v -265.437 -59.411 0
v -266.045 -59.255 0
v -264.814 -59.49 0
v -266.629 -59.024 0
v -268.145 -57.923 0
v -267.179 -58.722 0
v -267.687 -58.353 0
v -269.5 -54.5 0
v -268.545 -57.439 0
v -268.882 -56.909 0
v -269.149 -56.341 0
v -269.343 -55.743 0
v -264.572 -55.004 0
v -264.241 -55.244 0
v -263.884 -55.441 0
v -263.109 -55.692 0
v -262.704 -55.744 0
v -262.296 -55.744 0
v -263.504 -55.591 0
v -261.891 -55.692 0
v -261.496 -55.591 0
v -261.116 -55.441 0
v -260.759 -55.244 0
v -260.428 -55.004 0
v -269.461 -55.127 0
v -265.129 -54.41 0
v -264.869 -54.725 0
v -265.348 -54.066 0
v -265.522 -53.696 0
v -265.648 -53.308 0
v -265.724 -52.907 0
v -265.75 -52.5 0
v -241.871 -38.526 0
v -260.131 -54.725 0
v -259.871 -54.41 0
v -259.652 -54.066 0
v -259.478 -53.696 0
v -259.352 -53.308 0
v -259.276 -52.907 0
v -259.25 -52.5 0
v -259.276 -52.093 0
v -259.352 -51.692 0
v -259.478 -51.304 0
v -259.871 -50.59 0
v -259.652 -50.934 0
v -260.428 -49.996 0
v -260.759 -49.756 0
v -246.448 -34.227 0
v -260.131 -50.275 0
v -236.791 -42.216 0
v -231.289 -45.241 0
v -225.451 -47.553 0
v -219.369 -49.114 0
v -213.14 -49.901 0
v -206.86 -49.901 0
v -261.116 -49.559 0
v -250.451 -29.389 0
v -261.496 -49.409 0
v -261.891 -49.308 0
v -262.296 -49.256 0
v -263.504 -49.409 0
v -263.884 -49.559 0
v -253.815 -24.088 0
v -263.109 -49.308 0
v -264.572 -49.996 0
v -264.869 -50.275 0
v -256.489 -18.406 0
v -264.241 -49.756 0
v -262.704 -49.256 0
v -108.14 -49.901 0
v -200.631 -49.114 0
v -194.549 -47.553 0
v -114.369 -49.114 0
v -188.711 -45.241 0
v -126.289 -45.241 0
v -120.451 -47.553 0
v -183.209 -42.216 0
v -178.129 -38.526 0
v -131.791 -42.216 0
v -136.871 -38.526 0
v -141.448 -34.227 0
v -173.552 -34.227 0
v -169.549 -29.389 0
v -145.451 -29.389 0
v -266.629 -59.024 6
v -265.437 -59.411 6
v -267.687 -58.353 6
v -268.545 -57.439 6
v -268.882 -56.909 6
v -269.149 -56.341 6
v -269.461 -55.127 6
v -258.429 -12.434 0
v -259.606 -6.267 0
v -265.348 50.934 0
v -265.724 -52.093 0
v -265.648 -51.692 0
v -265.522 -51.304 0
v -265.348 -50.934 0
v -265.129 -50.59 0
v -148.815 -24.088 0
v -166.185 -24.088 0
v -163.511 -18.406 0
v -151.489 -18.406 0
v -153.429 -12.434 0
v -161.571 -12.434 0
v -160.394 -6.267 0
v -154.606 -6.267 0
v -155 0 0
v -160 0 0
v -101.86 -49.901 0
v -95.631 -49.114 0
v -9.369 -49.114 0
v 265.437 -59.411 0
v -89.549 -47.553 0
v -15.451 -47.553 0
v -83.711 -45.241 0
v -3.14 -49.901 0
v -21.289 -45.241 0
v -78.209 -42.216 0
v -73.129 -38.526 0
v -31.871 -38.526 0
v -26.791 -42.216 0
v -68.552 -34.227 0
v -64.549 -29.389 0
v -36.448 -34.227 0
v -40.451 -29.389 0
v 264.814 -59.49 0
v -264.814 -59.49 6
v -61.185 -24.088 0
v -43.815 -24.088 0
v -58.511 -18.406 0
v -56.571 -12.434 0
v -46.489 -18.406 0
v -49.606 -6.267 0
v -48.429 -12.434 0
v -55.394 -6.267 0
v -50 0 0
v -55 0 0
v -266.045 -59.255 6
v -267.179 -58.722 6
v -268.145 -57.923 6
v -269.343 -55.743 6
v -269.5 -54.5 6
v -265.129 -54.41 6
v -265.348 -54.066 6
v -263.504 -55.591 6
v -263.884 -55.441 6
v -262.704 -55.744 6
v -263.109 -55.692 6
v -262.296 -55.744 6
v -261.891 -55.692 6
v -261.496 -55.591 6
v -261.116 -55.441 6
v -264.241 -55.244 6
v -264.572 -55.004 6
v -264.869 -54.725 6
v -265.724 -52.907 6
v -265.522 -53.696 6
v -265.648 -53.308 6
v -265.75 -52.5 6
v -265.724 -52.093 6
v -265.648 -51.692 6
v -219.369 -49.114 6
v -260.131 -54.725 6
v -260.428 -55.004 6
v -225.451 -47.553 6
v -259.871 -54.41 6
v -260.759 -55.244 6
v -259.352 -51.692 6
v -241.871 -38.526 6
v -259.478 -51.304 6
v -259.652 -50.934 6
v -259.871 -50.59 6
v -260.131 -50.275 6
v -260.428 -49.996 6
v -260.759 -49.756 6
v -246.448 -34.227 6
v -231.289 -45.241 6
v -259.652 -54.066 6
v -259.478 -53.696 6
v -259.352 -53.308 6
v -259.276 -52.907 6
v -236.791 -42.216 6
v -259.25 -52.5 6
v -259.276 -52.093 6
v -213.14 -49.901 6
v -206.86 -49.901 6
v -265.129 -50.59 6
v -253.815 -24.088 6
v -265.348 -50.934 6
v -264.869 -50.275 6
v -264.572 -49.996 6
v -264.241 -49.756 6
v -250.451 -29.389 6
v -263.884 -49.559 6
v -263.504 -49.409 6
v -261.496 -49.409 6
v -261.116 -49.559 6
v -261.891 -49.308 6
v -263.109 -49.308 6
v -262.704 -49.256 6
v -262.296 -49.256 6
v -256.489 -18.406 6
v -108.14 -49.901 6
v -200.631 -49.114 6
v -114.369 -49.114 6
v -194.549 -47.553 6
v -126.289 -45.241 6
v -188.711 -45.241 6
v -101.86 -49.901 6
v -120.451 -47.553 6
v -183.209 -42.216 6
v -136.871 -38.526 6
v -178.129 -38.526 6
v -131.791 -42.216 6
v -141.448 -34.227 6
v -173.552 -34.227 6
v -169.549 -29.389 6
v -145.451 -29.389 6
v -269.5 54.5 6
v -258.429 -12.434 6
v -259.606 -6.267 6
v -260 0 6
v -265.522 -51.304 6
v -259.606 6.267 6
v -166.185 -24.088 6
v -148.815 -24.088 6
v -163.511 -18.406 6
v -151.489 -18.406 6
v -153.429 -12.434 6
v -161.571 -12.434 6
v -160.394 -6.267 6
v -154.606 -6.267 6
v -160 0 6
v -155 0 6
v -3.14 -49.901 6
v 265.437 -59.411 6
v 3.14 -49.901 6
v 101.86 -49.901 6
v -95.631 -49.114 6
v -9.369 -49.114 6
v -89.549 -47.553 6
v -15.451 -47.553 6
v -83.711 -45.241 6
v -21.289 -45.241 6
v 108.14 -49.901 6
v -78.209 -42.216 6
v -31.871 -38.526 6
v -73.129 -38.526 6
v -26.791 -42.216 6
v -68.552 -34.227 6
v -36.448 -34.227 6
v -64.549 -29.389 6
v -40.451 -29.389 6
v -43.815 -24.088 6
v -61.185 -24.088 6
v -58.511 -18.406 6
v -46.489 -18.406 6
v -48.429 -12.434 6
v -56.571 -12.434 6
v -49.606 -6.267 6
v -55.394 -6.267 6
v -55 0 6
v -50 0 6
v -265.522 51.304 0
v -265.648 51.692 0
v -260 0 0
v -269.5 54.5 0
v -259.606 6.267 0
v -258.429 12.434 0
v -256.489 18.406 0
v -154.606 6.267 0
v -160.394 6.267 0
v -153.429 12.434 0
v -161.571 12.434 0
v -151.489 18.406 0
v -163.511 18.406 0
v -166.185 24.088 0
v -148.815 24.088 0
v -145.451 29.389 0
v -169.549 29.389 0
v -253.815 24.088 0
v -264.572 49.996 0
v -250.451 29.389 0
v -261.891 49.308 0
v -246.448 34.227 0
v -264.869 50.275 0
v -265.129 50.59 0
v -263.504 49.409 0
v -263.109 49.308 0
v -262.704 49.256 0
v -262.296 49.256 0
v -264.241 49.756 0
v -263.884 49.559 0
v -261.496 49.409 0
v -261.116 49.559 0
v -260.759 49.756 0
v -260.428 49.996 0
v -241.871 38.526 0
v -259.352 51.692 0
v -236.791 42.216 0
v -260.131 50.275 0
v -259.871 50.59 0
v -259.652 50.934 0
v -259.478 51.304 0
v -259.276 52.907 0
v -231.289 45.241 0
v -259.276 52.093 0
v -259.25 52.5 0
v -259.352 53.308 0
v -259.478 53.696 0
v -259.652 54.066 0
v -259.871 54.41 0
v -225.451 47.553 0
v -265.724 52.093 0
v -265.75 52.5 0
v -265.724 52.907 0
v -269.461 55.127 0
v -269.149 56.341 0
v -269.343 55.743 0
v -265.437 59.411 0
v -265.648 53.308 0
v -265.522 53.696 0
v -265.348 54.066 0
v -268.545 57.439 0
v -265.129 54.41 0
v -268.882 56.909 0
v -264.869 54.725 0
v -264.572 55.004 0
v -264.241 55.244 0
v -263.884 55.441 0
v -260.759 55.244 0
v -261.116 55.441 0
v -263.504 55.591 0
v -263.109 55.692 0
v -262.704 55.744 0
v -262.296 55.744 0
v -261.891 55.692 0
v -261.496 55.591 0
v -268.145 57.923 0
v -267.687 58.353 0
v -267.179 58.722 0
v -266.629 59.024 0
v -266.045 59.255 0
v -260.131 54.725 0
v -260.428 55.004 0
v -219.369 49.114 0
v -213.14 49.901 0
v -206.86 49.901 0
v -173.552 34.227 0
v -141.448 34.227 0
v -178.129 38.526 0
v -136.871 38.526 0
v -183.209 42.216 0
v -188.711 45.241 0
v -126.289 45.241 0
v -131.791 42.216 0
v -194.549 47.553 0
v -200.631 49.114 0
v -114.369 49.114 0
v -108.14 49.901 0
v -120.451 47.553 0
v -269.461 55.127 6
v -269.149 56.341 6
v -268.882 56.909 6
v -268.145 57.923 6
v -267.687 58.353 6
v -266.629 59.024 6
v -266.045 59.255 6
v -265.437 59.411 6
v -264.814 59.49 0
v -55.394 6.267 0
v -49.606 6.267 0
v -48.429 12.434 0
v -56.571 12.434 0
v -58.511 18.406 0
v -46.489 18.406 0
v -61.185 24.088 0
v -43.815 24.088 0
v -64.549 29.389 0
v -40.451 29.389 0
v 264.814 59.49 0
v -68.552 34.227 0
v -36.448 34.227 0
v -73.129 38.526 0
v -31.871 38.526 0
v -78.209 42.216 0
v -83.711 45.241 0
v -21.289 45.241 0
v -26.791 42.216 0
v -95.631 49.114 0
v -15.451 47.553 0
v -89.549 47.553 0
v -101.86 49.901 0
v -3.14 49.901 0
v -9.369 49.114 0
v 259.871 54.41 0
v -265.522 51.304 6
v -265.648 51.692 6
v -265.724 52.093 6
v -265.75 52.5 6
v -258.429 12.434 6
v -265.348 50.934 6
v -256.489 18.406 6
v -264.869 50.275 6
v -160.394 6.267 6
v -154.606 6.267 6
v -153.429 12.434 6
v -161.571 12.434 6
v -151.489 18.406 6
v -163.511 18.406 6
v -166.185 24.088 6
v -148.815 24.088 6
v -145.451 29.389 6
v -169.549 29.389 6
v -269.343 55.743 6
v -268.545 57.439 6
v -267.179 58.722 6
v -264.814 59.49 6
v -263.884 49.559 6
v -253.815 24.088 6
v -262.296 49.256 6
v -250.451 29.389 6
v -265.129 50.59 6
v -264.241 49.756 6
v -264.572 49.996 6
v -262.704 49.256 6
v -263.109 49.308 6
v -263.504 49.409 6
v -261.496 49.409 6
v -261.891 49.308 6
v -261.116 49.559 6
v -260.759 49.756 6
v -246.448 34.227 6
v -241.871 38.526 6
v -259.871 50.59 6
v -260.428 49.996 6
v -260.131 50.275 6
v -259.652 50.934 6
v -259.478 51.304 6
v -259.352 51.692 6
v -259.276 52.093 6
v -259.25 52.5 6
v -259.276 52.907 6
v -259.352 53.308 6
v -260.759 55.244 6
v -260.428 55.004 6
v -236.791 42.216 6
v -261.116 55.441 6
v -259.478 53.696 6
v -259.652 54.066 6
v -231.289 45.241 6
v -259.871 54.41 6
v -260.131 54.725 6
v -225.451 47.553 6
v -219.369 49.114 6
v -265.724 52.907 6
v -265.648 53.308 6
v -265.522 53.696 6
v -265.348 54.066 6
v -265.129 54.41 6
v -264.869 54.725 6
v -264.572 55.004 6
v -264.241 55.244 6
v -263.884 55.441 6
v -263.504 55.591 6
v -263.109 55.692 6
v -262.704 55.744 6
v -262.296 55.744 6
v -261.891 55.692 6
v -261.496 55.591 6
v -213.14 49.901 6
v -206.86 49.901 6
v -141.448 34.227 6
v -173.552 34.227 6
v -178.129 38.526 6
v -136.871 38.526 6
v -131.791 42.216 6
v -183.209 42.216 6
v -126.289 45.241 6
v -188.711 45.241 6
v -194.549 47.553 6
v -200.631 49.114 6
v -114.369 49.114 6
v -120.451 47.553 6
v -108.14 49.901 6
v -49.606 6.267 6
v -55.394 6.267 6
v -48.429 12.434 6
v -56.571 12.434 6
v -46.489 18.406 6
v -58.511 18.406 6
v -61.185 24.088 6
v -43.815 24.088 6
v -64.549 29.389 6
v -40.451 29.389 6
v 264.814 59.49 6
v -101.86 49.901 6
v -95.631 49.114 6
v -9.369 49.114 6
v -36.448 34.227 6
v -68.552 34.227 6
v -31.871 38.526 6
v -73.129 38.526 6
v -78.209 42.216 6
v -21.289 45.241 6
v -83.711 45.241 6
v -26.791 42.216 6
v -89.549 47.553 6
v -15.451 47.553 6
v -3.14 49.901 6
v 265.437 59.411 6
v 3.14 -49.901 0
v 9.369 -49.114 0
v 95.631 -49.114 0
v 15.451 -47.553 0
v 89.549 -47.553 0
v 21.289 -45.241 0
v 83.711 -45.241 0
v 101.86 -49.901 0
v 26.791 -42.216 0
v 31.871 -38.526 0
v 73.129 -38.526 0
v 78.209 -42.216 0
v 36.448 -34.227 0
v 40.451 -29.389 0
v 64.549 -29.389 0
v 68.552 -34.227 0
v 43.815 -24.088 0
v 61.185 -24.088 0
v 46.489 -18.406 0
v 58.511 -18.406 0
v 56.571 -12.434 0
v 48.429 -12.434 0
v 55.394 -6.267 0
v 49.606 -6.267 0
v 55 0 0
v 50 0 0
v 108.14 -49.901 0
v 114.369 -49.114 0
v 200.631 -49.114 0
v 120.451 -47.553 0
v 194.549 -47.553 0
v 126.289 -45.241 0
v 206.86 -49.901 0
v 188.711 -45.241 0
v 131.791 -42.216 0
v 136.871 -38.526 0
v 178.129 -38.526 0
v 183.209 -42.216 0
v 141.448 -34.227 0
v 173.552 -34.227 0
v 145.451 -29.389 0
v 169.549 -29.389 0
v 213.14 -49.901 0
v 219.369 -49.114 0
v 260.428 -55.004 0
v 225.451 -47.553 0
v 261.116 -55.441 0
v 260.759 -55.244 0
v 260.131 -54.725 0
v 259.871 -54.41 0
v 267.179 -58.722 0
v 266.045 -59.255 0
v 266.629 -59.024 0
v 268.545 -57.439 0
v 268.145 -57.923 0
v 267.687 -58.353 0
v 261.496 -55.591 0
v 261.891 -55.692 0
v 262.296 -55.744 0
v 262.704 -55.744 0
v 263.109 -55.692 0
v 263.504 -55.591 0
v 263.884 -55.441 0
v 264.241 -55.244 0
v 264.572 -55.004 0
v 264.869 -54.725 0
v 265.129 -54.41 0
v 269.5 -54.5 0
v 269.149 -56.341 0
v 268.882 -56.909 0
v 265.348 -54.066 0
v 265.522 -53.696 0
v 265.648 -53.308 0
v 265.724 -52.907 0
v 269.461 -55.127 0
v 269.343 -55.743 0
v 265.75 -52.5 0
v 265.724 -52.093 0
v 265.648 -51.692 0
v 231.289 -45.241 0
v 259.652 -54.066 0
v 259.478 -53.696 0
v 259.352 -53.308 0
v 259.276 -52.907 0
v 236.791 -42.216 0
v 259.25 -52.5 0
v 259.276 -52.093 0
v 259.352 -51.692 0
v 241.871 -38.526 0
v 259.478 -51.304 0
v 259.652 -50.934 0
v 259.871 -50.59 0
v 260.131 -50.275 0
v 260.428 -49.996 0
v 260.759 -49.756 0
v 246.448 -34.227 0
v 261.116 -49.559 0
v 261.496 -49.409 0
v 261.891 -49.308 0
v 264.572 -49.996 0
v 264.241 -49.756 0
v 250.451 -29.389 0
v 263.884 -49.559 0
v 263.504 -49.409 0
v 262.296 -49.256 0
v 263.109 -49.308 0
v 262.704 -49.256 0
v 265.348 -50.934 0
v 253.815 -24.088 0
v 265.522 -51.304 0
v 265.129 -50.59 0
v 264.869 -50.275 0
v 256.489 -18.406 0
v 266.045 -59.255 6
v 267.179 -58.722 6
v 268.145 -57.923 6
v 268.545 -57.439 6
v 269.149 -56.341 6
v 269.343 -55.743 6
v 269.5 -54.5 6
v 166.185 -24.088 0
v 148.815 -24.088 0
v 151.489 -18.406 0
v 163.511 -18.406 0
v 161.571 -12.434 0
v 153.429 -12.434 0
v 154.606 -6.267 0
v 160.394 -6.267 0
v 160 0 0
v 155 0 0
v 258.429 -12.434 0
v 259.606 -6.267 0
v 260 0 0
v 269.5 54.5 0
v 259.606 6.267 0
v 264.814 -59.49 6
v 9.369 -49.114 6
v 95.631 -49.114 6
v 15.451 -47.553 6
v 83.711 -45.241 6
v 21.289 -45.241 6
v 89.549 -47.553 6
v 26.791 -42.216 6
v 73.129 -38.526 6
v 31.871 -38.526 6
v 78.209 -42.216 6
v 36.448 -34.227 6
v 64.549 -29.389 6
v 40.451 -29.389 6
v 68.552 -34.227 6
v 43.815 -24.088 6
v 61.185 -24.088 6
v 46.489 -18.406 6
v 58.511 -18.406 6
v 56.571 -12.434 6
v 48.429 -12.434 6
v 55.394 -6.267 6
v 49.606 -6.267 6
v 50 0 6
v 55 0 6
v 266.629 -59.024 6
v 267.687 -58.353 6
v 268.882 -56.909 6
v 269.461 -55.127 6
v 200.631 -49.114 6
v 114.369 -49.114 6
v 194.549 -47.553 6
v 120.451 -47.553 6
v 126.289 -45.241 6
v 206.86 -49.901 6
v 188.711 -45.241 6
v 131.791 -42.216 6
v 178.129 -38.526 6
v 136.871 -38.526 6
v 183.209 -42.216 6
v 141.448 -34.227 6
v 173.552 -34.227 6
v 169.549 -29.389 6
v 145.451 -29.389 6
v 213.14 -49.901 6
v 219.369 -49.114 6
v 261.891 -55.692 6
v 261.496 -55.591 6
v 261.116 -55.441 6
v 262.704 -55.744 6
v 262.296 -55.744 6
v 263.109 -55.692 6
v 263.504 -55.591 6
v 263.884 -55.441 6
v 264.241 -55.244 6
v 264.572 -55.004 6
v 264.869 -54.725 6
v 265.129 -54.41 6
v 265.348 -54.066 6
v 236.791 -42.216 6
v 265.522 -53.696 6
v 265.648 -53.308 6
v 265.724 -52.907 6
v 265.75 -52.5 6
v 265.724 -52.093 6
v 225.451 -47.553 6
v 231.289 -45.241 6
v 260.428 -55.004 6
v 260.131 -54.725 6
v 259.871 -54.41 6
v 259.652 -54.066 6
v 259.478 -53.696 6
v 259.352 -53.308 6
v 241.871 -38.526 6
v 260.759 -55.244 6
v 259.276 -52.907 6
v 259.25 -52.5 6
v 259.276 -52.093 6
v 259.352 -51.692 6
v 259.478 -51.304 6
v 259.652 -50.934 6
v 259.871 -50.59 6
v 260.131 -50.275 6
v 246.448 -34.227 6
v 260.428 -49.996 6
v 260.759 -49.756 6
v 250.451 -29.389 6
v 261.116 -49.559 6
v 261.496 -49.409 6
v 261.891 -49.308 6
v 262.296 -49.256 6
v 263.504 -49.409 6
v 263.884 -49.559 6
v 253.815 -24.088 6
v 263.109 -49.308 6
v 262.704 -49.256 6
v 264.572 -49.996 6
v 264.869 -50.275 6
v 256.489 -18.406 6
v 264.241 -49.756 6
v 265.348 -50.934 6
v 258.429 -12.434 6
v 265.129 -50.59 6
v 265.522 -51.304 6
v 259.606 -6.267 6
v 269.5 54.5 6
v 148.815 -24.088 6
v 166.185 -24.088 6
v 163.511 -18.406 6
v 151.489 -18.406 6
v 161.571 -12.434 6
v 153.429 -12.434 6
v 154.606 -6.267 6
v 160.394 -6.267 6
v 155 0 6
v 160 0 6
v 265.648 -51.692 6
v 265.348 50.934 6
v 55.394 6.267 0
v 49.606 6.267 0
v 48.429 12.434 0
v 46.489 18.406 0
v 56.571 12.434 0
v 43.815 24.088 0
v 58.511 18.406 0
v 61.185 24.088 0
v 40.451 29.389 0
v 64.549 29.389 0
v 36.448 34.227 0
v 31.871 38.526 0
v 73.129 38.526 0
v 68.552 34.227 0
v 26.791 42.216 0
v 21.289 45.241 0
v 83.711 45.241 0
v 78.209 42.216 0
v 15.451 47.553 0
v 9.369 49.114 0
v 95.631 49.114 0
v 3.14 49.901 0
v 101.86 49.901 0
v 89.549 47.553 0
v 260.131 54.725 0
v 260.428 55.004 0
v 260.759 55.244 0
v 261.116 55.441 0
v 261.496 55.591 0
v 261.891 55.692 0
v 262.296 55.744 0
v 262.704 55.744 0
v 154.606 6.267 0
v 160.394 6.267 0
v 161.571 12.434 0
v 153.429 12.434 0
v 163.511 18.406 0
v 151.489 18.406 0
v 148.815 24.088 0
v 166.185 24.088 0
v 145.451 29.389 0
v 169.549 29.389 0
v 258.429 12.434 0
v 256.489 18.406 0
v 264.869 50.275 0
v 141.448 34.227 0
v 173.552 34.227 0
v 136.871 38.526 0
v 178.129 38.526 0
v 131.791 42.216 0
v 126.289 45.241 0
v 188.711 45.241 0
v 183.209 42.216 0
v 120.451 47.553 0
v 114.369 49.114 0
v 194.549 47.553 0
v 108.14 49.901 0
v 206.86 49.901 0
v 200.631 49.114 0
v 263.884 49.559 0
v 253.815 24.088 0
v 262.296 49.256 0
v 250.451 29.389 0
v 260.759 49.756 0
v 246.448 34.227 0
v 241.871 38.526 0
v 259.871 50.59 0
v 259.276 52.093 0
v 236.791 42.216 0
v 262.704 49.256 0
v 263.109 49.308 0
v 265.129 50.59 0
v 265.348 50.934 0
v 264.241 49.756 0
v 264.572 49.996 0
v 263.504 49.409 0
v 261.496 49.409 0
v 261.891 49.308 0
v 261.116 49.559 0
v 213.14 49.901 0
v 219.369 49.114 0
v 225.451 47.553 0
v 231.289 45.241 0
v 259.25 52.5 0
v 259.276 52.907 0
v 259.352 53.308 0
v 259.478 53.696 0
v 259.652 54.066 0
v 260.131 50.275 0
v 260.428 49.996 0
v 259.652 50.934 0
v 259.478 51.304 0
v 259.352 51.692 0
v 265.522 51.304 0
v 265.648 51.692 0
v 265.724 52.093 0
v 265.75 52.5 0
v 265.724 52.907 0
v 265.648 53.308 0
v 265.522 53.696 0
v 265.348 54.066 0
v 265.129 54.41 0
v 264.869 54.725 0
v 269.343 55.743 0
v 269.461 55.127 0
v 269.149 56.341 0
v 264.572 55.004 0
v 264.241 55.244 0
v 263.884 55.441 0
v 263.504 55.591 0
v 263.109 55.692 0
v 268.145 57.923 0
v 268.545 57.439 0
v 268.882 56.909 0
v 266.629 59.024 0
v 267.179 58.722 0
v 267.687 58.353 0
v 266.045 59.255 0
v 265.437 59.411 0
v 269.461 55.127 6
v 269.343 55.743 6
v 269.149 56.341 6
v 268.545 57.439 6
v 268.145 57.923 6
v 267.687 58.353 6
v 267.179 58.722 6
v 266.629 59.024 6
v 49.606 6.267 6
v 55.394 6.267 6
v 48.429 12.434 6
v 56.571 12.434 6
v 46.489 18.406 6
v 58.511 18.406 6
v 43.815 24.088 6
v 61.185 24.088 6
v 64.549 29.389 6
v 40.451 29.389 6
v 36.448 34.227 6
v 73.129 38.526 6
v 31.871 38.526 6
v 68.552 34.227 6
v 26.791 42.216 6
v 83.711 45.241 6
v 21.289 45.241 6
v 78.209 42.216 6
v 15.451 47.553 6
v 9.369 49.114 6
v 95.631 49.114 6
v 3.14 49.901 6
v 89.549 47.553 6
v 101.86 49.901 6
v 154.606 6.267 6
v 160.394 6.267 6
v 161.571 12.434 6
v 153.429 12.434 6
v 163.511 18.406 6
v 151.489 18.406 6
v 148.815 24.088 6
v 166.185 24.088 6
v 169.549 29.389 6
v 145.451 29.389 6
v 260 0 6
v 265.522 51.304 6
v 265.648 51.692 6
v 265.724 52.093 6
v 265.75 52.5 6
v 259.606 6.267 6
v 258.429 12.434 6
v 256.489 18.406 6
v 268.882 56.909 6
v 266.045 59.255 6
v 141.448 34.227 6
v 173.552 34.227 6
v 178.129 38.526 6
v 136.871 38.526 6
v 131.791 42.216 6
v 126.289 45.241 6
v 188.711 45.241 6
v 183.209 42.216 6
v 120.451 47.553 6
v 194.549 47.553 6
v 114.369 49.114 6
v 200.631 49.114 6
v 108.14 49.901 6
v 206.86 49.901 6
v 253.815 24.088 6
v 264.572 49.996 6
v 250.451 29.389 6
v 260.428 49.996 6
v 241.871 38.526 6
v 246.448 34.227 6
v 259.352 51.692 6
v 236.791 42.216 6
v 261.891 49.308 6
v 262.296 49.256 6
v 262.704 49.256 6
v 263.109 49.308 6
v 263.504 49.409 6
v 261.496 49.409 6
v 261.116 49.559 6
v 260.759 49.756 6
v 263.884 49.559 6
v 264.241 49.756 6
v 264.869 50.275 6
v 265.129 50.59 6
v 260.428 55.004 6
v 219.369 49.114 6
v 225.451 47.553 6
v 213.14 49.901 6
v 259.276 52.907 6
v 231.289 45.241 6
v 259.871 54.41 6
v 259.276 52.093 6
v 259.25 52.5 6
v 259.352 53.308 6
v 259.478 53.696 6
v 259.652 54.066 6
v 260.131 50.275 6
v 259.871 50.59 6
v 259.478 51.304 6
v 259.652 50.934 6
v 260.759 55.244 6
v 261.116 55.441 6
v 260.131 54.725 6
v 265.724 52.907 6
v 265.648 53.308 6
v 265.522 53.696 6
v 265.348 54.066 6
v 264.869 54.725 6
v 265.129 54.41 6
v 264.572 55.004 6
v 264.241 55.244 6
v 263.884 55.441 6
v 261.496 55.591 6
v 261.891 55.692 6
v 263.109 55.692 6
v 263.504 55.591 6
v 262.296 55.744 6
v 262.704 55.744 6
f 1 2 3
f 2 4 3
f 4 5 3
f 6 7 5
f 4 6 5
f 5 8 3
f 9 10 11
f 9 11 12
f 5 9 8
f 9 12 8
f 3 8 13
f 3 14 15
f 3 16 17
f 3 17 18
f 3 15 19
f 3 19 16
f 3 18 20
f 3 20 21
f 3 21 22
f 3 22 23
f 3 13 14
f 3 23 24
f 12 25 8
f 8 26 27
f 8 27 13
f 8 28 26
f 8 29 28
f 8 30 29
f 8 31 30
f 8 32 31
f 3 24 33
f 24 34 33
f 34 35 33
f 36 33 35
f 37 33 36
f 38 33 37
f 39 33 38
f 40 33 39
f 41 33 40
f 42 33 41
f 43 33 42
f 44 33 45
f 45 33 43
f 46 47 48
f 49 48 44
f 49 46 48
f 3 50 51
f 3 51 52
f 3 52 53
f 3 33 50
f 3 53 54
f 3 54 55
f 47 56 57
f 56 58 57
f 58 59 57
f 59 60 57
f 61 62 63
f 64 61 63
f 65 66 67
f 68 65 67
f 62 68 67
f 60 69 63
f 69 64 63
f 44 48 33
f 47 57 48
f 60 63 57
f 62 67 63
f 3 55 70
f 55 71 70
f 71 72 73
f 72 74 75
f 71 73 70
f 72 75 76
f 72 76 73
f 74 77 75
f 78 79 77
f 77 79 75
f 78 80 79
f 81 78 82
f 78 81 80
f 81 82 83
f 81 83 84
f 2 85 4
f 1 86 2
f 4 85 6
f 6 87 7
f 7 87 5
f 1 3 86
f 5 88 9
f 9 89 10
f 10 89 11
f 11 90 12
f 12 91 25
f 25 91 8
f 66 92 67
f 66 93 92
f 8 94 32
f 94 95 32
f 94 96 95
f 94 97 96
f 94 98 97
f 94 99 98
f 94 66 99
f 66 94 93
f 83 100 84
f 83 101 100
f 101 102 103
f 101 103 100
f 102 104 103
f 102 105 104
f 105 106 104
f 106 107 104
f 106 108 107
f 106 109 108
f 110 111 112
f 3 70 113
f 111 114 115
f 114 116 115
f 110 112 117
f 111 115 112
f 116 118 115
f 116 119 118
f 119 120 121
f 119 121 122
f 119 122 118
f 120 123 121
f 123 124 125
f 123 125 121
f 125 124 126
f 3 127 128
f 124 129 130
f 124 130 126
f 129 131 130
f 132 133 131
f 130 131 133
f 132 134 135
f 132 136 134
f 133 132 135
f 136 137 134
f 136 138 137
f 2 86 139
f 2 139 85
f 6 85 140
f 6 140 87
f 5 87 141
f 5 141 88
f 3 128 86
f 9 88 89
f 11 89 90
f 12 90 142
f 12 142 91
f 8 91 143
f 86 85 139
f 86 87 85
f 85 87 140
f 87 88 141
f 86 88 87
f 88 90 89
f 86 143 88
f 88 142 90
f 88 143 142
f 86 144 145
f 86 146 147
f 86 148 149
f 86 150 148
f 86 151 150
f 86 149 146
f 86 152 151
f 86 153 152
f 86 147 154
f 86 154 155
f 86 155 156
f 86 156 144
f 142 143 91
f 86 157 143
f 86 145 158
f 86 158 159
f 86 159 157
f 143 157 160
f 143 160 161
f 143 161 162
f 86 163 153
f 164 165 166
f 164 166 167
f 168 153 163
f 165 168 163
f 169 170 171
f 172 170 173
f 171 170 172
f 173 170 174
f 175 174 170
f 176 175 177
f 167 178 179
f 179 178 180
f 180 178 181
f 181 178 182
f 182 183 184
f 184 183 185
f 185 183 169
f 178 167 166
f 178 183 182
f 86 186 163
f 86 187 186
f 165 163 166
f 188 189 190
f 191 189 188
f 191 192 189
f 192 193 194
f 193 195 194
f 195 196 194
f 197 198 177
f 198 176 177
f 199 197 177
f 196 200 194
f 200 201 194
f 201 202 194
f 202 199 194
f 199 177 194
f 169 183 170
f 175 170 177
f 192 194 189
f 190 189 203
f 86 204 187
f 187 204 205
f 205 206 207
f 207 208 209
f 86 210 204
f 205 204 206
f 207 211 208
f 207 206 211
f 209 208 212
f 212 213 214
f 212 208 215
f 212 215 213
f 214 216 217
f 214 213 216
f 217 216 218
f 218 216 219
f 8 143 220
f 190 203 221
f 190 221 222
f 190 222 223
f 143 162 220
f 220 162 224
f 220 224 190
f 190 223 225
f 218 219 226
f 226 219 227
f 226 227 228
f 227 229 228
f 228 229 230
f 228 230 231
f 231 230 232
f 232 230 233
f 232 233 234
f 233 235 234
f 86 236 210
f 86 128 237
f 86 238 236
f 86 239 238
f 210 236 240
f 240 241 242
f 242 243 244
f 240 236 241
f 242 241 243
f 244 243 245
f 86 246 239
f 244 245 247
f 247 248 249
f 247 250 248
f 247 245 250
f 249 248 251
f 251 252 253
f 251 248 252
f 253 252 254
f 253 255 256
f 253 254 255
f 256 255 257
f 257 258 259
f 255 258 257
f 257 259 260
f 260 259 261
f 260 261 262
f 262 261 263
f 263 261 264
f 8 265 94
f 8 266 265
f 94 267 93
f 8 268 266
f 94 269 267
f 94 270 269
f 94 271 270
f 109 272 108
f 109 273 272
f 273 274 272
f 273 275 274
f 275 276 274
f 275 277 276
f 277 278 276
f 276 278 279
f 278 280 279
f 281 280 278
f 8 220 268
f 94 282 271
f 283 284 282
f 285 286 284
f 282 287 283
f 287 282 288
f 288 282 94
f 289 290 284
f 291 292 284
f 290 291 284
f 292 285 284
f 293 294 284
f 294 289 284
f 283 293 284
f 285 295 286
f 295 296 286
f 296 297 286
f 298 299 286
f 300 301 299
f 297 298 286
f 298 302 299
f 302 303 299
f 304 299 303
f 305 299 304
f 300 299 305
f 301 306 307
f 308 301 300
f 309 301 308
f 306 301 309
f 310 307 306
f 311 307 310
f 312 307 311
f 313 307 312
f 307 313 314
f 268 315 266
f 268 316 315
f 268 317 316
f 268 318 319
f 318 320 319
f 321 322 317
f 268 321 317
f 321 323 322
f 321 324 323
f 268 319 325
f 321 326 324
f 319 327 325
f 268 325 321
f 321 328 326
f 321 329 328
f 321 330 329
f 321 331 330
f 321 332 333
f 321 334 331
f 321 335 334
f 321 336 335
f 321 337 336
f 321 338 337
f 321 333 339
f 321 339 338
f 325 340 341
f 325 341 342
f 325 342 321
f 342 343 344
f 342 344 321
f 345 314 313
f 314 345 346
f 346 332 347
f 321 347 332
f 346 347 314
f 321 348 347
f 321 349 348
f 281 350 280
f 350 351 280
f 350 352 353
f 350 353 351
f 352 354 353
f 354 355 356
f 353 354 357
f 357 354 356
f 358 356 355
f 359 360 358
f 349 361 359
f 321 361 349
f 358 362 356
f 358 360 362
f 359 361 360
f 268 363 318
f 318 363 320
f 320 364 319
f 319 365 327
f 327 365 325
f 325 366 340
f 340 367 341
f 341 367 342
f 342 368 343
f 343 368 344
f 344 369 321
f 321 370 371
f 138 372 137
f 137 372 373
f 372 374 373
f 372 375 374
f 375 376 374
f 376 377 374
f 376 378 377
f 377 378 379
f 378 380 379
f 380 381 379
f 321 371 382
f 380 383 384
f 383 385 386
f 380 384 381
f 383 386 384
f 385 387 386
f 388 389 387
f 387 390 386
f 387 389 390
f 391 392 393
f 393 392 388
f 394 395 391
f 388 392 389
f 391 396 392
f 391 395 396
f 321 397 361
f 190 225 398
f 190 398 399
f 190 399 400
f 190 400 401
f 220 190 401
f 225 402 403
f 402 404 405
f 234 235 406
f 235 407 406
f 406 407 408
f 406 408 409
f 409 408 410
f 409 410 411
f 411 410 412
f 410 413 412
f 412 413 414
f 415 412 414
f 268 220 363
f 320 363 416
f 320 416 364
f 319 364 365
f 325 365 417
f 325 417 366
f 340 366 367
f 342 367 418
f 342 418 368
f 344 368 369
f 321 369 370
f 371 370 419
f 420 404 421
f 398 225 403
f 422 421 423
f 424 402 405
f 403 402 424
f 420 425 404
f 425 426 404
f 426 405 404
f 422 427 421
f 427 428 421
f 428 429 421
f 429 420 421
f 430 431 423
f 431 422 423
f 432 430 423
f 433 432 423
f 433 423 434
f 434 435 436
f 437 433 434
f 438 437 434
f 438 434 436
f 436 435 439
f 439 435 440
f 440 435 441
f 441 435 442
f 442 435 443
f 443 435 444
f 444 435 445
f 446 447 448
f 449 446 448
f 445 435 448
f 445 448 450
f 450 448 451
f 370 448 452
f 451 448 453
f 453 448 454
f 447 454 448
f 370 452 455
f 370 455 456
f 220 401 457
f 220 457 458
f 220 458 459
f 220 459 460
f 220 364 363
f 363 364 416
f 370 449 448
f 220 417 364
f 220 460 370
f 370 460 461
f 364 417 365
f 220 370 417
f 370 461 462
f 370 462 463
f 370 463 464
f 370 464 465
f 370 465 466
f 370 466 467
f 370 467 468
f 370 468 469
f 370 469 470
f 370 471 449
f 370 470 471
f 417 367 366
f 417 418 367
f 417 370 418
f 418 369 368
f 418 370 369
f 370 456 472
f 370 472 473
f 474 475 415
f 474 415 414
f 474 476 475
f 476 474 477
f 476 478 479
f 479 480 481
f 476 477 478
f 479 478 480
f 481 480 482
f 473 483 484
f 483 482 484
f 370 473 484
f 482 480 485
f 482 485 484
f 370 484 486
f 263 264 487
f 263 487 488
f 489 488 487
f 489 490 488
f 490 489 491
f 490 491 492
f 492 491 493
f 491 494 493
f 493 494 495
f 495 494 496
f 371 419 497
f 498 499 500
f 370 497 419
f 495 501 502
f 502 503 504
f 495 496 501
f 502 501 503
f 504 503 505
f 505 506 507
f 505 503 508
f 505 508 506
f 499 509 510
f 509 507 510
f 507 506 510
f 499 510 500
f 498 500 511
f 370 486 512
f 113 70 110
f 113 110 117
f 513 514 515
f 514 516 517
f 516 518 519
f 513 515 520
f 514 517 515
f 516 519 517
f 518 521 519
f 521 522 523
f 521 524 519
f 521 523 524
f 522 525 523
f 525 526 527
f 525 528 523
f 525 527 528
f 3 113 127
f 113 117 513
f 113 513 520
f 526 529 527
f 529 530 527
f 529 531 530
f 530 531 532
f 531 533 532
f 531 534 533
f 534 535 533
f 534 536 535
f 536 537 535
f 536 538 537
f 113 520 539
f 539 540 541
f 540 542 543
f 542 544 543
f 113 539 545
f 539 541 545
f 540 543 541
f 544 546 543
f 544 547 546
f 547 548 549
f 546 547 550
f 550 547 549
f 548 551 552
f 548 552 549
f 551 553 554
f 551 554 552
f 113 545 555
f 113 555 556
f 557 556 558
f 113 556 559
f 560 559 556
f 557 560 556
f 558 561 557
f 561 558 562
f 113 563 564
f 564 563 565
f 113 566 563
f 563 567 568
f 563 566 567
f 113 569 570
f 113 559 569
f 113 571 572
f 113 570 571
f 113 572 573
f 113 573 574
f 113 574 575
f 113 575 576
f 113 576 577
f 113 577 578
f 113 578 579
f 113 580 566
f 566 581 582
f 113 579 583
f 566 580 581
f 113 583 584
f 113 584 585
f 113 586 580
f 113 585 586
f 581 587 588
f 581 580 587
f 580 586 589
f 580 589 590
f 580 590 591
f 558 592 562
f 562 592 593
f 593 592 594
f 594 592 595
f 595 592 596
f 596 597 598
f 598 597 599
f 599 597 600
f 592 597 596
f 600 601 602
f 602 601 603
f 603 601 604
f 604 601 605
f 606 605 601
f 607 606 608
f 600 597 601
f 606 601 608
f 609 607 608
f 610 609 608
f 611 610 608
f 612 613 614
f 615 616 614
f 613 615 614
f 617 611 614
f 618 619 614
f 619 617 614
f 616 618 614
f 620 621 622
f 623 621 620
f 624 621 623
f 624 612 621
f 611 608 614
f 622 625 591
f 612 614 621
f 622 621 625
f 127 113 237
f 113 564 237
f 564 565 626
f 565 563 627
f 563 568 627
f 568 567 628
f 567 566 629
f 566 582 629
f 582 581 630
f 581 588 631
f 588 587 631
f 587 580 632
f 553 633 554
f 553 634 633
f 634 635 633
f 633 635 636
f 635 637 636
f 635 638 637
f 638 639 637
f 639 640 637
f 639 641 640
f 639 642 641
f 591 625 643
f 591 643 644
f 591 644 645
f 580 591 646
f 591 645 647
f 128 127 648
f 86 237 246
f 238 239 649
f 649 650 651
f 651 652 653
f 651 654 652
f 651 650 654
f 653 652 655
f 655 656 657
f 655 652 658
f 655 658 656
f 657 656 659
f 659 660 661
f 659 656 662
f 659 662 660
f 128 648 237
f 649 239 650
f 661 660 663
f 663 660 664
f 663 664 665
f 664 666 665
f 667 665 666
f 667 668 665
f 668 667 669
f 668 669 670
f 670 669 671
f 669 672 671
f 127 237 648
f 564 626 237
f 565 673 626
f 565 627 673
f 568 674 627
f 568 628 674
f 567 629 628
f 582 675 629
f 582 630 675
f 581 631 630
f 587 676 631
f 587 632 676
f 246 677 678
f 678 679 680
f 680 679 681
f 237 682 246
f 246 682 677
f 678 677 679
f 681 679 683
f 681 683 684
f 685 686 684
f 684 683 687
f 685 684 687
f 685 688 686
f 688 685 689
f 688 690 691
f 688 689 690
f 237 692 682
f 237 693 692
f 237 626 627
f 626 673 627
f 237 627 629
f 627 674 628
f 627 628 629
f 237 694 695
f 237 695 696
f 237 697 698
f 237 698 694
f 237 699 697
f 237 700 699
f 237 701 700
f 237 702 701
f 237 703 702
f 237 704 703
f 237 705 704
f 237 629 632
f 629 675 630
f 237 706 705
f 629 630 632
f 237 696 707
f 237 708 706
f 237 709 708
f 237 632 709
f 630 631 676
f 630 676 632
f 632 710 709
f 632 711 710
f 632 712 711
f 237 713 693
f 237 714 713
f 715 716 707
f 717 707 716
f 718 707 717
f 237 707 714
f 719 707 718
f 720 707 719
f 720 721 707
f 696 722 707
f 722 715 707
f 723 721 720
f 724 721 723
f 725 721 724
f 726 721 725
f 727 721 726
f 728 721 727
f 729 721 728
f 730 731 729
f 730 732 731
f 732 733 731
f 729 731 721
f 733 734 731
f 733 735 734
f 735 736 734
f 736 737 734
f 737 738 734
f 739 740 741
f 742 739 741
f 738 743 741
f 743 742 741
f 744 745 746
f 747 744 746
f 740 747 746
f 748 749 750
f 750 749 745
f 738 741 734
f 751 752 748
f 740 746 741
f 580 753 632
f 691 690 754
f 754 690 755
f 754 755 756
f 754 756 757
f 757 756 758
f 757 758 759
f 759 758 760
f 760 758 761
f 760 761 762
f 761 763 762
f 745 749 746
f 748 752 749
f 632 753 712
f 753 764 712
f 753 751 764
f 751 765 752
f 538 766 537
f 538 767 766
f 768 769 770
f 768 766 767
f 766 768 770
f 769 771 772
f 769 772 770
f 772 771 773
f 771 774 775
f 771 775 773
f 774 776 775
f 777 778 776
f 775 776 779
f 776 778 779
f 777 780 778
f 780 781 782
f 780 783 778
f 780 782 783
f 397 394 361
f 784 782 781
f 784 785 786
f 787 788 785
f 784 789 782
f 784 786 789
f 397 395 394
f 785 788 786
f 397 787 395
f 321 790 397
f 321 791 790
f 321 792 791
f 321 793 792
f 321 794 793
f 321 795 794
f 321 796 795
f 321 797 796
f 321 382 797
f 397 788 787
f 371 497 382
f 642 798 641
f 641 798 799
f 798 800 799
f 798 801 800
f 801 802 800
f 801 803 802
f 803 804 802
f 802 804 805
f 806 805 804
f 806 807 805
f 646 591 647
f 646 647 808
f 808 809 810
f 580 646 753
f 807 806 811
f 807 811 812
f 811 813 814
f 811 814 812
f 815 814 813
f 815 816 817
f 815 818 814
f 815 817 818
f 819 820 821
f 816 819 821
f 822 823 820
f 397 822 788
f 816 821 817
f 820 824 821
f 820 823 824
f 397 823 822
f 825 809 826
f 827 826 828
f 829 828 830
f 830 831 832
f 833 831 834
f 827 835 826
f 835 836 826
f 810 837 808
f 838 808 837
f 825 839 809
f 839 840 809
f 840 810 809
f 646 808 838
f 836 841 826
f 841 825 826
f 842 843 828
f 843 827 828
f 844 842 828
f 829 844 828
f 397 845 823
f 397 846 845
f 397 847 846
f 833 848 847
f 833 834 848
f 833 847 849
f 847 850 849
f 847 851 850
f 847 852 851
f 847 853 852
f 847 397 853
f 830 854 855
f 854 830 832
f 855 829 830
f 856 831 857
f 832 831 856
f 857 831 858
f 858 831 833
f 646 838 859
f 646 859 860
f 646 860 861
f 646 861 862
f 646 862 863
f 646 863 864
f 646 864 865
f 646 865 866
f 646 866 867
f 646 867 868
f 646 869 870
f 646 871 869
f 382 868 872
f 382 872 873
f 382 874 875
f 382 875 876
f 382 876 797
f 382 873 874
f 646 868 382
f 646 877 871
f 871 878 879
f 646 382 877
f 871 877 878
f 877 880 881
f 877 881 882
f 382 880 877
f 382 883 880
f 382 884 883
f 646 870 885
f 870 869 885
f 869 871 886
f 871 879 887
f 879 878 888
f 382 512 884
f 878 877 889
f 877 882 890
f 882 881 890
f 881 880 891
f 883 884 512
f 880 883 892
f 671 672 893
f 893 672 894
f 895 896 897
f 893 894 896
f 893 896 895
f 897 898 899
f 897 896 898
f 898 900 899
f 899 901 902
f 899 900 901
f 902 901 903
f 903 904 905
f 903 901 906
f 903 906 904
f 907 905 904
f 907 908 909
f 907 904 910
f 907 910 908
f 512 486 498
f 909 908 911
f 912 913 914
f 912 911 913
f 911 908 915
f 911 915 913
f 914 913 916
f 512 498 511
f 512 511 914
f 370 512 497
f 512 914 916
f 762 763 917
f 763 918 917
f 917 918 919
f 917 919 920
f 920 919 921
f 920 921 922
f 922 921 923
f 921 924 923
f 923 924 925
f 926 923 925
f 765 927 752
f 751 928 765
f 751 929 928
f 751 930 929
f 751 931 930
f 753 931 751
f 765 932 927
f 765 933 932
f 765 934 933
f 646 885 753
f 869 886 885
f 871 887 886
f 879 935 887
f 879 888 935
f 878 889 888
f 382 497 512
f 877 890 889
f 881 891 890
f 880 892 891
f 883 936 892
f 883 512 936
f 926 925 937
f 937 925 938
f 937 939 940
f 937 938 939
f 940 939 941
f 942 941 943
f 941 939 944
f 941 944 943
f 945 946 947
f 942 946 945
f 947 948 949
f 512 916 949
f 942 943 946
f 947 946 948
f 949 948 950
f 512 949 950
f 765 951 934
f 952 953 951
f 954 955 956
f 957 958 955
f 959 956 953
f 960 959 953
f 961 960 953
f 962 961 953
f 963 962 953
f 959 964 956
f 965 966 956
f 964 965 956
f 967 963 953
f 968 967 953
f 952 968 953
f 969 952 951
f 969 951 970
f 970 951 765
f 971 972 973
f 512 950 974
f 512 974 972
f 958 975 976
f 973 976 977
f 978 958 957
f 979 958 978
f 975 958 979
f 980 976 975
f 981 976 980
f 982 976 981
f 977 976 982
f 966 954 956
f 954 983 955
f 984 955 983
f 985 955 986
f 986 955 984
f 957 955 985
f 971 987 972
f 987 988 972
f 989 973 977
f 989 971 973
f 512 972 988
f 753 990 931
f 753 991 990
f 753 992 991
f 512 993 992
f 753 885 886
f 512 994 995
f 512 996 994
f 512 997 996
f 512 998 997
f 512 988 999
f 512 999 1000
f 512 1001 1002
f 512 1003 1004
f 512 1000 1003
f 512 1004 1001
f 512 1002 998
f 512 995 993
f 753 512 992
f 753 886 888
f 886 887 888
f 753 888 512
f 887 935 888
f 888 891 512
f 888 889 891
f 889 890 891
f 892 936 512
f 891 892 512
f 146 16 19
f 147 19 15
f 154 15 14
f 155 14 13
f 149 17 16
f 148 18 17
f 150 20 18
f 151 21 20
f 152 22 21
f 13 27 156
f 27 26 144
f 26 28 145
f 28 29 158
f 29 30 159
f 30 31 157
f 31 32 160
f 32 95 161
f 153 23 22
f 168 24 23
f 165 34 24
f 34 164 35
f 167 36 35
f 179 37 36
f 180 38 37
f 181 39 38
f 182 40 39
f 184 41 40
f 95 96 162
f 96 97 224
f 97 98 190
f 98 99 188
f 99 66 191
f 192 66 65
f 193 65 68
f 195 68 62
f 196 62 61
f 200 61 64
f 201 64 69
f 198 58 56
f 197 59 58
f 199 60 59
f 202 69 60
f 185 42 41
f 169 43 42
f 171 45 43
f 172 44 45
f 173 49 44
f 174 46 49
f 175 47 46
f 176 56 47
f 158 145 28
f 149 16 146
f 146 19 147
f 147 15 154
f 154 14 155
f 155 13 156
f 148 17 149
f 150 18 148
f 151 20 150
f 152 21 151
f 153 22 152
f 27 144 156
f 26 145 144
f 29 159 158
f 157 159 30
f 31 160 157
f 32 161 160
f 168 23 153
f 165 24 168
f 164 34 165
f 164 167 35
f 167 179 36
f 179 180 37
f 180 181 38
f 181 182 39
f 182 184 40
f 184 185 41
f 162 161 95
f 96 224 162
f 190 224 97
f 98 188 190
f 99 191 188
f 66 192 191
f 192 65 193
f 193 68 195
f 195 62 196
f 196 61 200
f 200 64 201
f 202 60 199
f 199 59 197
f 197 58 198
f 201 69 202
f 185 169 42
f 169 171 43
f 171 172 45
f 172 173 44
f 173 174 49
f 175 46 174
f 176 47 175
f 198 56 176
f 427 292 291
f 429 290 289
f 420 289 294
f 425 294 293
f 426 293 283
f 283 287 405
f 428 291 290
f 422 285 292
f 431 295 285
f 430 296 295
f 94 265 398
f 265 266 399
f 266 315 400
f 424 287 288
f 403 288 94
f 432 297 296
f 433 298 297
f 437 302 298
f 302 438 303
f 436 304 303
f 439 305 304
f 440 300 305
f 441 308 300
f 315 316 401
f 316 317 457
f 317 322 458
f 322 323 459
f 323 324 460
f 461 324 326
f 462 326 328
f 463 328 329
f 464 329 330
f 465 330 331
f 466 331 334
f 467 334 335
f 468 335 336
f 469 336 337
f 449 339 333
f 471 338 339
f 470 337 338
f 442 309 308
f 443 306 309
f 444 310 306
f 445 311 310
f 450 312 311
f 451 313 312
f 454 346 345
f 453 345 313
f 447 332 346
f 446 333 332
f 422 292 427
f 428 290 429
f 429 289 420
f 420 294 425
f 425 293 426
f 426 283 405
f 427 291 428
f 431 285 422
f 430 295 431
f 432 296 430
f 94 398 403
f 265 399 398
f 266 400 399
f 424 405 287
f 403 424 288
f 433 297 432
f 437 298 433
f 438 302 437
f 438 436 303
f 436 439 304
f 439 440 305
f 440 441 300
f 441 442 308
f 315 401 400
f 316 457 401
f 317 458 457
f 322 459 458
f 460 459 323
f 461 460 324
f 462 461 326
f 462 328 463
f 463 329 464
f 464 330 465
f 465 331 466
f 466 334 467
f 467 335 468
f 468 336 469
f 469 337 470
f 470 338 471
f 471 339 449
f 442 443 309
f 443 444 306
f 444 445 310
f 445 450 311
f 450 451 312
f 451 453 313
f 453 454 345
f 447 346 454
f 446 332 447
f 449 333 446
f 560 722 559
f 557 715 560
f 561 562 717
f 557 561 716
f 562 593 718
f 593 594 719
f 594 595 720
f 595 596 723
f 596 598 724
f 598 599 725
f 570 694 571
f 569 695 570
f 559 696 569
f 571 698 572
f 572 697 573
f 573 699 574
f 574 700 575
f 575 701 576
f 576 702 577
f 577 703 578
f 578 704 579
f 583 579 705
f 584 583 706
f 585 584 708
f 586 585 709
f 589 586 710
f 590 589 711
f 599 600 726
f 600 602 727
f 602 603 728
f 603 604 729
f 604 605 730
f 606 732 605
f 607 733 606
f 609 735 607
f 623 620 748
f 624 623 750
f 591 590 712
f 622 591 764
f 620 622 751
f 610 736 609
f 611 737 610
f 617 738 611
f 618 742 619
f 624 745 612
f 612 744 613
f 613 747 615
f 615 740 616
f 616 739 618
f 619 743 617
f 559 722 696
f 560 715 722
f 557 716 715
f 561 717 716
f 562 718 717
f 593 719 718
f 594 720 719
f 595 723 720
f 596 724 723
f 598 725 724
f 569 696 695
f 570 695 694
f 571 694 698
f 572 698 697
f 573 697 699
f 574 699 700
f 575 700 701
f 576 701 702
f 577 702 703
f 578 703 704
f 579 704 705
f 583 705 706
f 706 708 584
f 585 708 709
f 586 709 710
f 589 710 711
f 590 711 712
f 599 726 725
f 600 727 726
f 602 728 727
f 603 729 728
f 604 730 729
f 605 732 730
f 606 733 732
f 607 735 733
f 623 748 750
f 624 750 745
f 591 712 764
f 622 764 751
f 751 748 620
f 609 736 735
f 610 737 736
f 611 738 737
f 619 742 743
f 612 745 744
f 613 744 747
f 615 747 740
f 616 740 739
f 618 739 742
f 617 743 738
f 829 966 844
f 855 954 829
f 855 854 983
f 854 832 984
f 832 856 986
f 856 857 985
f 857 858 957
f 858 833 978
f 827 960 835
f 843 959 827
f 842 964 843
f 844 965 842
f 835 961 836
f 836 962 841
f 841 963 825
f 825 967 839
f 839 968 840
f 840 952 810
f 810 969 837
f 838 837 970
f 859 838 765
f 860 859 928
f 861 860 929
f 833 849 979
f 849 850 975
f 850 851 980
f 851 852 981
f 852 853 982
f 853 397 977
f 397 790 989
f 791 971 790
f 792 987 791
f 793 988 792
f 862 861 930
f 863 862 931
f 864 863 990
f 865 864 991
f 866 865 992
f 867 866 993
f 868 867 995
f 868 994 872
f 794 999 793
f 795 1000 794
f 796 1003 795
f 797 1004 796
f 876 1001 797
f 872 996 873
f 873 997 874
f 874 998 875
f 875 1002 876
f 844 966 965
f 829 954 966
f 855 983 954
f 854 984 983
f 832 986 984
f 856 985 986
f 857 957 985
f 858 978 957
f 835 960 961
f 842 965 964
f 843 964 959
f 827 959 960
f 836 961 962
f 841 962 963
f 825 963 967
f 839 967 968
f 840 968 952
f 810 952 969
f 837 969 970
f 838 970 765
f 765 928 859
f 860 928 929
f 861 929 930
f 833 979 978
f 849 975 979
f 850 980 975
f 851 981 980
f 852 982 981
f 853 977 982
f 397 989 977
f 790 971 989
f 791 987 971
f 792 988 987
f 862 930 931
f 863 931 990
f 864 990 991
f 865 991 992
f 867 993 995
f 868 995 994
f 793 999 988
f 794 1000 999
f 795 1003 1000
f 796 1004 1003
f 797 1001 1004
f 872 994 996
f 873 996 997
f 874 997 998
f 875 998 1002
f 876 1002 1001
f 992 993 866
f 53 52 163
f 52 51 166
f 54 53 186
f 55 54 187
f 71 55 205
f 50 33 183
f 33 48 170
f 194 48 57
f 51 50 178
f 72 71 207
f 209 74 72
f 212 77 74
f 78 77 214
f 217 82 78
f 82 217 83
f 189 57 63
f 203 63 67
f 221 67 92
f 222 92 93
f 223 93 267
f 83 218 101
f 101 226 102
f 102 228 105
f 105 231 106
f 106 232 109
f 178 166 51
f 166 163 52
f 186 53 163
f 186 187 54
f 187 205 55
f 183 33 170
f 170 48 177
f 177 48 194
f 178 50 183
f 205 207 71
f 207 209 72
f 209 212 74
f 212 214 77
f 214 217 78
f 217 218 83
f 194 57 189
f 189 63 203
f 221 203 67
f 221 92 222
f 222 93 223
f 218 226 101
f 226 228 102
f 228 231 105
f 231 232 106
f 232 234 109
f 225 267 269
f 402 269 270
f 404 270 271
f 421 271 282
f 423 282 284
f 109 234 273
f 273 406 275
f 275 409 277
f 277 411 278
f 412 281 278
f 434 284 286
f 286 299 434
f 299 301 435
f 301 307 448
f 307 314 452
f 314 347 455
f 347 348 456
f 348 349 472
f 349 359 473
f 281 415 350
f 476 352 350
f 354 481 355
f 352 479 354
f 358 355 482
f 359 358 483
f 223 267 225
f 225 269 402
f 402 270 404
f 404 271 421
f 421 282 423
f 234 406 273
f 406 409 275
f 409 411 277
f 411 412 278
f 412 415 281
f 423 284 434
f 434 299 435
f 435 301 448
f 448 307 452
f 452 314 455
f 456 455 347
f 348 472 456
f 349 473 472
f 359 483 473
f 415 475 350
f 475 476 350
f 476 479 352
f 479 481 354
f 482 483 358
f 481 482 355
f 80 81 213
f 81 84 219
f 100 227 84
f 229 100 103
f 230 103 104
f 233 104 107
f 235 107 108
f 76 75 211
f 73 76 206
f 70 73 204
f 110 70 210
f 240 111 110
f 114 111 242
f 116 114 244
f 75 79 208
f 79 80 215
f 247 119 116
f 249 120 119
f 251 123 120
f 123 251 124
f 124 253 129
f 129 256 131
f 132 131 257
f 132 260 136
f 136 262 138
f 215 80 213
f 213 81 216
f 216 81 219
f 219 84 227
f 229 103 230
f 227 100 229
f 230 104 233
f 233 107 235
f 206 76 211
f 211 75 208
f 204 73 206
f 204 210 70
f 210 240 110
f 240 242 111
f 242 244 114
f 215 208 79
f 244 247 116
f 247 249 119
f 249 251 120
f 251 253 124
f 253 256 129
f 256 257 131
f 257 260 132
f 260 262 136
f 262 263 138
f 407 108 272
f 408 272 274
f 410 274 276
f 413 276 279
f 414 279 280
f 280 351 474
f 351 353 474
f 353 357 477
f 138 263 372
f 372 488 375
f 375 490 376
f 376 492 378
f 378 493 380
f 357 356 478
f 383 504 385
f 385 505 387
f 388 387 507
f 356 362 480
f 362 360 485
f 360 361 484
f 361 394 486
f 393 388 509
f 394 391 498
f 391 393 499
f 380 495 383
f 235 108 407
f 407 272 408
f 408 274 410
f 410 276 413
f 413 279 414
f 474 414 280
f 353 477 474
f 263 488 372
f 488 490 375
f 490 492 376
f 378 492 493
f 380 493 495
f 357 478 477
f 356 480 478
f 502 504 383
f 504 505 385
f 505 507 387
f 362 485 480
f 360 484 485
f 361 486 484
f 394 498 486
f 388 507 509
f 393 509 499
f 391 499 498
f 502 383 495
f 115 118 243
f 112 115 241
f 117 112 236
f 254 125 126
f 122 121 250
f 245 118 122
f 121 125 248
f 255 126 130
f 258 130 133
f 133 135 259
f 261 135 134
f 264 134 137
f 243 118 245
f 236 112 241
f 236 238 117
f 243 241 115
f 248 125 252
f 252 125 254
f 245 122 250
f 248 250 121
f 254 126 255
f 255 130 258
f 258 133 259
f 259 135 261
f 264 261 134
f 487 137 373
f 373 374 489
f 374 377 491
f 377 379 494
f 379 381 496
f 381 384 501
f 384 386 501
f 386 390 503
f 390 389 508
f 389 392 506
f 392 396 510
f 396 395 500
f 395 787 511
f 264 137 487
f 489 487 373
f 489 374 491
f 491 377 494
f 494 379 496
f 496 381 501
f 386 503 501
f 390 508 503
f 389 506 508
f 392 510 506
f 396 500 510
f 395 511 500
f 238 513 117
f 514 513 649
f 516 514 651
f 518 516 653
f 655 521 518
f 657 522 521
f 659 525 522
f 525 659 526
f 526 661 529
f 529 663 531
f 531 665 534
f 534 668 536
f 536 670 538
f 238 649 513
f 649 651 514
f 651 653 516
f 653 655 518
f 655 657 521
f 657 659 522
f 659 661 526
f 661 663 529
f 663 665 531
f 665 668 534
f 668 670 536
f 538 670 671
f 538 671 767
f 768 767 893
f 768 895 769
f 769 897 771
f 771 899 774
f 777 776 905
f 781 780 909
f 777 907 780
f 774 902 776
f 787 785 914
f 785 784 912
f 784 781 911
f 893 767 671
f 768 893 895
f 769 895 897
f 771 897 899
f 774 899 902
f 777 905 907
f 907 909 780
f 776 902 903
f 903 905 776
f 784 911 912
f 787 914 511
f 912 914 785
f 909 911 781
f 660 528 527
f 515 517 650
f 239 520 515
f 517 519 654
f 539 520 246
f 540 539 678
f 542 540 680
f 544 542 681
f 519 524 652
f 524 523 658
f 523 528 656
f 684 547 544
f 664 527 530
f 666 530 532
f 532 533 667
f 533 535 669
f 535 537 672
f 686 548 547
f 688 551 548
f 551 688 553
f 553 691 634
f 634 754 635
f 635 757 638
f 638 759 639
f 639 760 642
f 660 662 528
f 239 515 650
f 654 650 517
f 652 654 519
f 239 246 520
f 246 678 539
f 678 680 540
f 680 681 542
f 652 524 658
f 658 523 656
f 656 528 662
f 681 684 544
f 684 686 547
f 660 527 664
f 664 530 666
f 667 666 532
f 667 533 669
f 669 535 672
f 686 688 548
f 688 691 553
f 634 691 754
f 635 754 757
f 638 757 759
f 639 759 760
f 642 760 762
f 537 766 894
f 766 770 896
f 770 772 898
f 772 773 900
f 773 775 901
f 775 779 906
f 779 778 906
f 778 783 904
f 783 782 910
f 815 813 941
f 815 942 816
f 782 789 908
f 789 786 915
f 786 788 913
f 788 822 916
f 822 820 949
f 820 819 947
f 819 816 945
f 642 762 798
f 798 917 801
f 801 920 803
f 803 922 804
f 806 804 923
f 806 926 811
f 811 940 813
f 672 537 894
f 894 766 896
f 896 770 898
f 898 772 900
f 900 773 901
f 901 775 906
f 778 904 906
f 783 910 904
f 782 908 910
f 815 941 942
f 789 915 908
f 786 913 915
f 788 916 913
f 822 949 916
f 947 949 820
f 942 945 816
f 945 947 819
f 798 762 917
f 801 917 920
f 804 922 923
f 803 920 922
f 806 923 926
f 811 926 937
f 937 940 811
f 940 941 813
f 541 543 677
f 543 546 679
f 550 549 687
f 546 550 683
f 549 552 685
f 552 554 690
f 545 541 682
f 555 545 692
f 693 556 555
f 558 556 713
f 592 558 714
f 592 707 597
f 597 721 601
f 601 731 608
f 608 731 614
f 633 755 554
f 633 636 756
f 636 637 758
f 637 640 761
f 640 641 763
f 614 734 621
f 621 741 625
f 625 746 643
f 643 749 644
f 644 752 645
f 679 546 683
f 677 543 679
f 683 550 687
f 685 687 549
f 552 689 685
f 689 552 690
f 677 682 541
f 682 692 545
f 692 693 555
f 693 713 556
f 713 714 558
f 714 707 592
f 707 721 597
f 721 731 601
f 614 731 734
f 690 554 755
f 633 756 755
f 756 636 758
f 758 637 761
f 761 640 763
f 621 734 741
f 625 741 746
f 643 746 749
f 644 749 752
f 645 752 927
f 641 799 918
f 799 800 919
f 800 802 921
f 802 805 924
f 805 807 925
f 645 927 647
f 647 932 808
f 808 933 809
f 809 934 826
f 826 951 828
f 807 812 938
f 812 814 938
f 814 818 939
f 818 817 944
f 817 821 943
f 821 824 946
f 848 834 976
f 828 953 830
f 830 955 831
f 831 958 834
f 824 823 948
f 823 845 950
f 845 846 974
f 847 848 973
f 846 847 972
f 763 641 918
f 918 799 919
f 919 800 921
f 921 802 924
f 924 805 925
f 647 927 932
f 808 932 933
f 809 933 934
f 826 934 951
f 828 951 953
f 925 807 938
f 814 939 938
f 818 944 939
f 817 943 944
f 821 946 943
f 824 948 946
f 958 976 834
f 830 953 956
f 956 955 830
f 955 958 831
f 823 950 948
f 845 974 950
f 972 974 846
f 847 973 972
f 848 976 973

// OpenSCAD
$fn = 50;

difference() {
	union() {
		hull() {
			translate(v = [-264.5, 54.5, 0]) {
				cylinder(h = 6, r = 5);
			}
			translate(v = [264.5, 54.5, 0]) {
				cylinder(h = 6, r = 5);
			}
			translate(v = [-264.5, -54.5, 0]) {
				cylinder(h = 6, r = 5);
			}
			translate(v = [264.5, -54.5, 0]) {
				cylinder(h = 6, r = 5);
			}
		}
	}
	union() {
		translate(v = [-262.5, -52.5, -100.0]) {
			cylinder(h = 200, r = 3.25);
		}
		translate(v = [-262.5, 52.5, -100.0]) {
			cylinder(h = 200, r = 3.25);
		}
		translate(v = [262.5, -52.5, -100.0]) {
			cylinder(h = 200, r = 3.25);
		}
		translate(v = [262.5, 52.5, -100.0]) {
			cylinder(h = 200, r = 3.25);
		}
		translate(v = [-262.5, -52.5, -100.0]) {
			cylinder(h = 200, r = 1.8);
		}
		translate(v = [-262.5, 52.5, -100.0]) {
			cylinder(h = 200, r = 1.8);
		}
		translate(v = [262.5, -52.5, -100.0]) {
			cylinder(h = 200, r = 1.8);
		}
		translate(v = [262.5, 52.5, -100.0]) {
			cylinder(h = 200, r = 1.8);
		}
		translate(v = [-210.0, 0, 0.0]) {
			cylinder(h = 6, r = 50.0);
		}
		translate(v = [-105.0, 0, 0.0]) {
			cylinder(h = 6, r = 50.0);
		}
		cylinder(h = 6, r = 50.0);
		translate(v = [105.0, 0, 0.0]) {
			cylinder(h = 6, r = 50.0);
		}
		translate(v = [210.0, 0, 0.0]) {
			cylinder(h = 6, r = 50.0);
		}
	}
}
